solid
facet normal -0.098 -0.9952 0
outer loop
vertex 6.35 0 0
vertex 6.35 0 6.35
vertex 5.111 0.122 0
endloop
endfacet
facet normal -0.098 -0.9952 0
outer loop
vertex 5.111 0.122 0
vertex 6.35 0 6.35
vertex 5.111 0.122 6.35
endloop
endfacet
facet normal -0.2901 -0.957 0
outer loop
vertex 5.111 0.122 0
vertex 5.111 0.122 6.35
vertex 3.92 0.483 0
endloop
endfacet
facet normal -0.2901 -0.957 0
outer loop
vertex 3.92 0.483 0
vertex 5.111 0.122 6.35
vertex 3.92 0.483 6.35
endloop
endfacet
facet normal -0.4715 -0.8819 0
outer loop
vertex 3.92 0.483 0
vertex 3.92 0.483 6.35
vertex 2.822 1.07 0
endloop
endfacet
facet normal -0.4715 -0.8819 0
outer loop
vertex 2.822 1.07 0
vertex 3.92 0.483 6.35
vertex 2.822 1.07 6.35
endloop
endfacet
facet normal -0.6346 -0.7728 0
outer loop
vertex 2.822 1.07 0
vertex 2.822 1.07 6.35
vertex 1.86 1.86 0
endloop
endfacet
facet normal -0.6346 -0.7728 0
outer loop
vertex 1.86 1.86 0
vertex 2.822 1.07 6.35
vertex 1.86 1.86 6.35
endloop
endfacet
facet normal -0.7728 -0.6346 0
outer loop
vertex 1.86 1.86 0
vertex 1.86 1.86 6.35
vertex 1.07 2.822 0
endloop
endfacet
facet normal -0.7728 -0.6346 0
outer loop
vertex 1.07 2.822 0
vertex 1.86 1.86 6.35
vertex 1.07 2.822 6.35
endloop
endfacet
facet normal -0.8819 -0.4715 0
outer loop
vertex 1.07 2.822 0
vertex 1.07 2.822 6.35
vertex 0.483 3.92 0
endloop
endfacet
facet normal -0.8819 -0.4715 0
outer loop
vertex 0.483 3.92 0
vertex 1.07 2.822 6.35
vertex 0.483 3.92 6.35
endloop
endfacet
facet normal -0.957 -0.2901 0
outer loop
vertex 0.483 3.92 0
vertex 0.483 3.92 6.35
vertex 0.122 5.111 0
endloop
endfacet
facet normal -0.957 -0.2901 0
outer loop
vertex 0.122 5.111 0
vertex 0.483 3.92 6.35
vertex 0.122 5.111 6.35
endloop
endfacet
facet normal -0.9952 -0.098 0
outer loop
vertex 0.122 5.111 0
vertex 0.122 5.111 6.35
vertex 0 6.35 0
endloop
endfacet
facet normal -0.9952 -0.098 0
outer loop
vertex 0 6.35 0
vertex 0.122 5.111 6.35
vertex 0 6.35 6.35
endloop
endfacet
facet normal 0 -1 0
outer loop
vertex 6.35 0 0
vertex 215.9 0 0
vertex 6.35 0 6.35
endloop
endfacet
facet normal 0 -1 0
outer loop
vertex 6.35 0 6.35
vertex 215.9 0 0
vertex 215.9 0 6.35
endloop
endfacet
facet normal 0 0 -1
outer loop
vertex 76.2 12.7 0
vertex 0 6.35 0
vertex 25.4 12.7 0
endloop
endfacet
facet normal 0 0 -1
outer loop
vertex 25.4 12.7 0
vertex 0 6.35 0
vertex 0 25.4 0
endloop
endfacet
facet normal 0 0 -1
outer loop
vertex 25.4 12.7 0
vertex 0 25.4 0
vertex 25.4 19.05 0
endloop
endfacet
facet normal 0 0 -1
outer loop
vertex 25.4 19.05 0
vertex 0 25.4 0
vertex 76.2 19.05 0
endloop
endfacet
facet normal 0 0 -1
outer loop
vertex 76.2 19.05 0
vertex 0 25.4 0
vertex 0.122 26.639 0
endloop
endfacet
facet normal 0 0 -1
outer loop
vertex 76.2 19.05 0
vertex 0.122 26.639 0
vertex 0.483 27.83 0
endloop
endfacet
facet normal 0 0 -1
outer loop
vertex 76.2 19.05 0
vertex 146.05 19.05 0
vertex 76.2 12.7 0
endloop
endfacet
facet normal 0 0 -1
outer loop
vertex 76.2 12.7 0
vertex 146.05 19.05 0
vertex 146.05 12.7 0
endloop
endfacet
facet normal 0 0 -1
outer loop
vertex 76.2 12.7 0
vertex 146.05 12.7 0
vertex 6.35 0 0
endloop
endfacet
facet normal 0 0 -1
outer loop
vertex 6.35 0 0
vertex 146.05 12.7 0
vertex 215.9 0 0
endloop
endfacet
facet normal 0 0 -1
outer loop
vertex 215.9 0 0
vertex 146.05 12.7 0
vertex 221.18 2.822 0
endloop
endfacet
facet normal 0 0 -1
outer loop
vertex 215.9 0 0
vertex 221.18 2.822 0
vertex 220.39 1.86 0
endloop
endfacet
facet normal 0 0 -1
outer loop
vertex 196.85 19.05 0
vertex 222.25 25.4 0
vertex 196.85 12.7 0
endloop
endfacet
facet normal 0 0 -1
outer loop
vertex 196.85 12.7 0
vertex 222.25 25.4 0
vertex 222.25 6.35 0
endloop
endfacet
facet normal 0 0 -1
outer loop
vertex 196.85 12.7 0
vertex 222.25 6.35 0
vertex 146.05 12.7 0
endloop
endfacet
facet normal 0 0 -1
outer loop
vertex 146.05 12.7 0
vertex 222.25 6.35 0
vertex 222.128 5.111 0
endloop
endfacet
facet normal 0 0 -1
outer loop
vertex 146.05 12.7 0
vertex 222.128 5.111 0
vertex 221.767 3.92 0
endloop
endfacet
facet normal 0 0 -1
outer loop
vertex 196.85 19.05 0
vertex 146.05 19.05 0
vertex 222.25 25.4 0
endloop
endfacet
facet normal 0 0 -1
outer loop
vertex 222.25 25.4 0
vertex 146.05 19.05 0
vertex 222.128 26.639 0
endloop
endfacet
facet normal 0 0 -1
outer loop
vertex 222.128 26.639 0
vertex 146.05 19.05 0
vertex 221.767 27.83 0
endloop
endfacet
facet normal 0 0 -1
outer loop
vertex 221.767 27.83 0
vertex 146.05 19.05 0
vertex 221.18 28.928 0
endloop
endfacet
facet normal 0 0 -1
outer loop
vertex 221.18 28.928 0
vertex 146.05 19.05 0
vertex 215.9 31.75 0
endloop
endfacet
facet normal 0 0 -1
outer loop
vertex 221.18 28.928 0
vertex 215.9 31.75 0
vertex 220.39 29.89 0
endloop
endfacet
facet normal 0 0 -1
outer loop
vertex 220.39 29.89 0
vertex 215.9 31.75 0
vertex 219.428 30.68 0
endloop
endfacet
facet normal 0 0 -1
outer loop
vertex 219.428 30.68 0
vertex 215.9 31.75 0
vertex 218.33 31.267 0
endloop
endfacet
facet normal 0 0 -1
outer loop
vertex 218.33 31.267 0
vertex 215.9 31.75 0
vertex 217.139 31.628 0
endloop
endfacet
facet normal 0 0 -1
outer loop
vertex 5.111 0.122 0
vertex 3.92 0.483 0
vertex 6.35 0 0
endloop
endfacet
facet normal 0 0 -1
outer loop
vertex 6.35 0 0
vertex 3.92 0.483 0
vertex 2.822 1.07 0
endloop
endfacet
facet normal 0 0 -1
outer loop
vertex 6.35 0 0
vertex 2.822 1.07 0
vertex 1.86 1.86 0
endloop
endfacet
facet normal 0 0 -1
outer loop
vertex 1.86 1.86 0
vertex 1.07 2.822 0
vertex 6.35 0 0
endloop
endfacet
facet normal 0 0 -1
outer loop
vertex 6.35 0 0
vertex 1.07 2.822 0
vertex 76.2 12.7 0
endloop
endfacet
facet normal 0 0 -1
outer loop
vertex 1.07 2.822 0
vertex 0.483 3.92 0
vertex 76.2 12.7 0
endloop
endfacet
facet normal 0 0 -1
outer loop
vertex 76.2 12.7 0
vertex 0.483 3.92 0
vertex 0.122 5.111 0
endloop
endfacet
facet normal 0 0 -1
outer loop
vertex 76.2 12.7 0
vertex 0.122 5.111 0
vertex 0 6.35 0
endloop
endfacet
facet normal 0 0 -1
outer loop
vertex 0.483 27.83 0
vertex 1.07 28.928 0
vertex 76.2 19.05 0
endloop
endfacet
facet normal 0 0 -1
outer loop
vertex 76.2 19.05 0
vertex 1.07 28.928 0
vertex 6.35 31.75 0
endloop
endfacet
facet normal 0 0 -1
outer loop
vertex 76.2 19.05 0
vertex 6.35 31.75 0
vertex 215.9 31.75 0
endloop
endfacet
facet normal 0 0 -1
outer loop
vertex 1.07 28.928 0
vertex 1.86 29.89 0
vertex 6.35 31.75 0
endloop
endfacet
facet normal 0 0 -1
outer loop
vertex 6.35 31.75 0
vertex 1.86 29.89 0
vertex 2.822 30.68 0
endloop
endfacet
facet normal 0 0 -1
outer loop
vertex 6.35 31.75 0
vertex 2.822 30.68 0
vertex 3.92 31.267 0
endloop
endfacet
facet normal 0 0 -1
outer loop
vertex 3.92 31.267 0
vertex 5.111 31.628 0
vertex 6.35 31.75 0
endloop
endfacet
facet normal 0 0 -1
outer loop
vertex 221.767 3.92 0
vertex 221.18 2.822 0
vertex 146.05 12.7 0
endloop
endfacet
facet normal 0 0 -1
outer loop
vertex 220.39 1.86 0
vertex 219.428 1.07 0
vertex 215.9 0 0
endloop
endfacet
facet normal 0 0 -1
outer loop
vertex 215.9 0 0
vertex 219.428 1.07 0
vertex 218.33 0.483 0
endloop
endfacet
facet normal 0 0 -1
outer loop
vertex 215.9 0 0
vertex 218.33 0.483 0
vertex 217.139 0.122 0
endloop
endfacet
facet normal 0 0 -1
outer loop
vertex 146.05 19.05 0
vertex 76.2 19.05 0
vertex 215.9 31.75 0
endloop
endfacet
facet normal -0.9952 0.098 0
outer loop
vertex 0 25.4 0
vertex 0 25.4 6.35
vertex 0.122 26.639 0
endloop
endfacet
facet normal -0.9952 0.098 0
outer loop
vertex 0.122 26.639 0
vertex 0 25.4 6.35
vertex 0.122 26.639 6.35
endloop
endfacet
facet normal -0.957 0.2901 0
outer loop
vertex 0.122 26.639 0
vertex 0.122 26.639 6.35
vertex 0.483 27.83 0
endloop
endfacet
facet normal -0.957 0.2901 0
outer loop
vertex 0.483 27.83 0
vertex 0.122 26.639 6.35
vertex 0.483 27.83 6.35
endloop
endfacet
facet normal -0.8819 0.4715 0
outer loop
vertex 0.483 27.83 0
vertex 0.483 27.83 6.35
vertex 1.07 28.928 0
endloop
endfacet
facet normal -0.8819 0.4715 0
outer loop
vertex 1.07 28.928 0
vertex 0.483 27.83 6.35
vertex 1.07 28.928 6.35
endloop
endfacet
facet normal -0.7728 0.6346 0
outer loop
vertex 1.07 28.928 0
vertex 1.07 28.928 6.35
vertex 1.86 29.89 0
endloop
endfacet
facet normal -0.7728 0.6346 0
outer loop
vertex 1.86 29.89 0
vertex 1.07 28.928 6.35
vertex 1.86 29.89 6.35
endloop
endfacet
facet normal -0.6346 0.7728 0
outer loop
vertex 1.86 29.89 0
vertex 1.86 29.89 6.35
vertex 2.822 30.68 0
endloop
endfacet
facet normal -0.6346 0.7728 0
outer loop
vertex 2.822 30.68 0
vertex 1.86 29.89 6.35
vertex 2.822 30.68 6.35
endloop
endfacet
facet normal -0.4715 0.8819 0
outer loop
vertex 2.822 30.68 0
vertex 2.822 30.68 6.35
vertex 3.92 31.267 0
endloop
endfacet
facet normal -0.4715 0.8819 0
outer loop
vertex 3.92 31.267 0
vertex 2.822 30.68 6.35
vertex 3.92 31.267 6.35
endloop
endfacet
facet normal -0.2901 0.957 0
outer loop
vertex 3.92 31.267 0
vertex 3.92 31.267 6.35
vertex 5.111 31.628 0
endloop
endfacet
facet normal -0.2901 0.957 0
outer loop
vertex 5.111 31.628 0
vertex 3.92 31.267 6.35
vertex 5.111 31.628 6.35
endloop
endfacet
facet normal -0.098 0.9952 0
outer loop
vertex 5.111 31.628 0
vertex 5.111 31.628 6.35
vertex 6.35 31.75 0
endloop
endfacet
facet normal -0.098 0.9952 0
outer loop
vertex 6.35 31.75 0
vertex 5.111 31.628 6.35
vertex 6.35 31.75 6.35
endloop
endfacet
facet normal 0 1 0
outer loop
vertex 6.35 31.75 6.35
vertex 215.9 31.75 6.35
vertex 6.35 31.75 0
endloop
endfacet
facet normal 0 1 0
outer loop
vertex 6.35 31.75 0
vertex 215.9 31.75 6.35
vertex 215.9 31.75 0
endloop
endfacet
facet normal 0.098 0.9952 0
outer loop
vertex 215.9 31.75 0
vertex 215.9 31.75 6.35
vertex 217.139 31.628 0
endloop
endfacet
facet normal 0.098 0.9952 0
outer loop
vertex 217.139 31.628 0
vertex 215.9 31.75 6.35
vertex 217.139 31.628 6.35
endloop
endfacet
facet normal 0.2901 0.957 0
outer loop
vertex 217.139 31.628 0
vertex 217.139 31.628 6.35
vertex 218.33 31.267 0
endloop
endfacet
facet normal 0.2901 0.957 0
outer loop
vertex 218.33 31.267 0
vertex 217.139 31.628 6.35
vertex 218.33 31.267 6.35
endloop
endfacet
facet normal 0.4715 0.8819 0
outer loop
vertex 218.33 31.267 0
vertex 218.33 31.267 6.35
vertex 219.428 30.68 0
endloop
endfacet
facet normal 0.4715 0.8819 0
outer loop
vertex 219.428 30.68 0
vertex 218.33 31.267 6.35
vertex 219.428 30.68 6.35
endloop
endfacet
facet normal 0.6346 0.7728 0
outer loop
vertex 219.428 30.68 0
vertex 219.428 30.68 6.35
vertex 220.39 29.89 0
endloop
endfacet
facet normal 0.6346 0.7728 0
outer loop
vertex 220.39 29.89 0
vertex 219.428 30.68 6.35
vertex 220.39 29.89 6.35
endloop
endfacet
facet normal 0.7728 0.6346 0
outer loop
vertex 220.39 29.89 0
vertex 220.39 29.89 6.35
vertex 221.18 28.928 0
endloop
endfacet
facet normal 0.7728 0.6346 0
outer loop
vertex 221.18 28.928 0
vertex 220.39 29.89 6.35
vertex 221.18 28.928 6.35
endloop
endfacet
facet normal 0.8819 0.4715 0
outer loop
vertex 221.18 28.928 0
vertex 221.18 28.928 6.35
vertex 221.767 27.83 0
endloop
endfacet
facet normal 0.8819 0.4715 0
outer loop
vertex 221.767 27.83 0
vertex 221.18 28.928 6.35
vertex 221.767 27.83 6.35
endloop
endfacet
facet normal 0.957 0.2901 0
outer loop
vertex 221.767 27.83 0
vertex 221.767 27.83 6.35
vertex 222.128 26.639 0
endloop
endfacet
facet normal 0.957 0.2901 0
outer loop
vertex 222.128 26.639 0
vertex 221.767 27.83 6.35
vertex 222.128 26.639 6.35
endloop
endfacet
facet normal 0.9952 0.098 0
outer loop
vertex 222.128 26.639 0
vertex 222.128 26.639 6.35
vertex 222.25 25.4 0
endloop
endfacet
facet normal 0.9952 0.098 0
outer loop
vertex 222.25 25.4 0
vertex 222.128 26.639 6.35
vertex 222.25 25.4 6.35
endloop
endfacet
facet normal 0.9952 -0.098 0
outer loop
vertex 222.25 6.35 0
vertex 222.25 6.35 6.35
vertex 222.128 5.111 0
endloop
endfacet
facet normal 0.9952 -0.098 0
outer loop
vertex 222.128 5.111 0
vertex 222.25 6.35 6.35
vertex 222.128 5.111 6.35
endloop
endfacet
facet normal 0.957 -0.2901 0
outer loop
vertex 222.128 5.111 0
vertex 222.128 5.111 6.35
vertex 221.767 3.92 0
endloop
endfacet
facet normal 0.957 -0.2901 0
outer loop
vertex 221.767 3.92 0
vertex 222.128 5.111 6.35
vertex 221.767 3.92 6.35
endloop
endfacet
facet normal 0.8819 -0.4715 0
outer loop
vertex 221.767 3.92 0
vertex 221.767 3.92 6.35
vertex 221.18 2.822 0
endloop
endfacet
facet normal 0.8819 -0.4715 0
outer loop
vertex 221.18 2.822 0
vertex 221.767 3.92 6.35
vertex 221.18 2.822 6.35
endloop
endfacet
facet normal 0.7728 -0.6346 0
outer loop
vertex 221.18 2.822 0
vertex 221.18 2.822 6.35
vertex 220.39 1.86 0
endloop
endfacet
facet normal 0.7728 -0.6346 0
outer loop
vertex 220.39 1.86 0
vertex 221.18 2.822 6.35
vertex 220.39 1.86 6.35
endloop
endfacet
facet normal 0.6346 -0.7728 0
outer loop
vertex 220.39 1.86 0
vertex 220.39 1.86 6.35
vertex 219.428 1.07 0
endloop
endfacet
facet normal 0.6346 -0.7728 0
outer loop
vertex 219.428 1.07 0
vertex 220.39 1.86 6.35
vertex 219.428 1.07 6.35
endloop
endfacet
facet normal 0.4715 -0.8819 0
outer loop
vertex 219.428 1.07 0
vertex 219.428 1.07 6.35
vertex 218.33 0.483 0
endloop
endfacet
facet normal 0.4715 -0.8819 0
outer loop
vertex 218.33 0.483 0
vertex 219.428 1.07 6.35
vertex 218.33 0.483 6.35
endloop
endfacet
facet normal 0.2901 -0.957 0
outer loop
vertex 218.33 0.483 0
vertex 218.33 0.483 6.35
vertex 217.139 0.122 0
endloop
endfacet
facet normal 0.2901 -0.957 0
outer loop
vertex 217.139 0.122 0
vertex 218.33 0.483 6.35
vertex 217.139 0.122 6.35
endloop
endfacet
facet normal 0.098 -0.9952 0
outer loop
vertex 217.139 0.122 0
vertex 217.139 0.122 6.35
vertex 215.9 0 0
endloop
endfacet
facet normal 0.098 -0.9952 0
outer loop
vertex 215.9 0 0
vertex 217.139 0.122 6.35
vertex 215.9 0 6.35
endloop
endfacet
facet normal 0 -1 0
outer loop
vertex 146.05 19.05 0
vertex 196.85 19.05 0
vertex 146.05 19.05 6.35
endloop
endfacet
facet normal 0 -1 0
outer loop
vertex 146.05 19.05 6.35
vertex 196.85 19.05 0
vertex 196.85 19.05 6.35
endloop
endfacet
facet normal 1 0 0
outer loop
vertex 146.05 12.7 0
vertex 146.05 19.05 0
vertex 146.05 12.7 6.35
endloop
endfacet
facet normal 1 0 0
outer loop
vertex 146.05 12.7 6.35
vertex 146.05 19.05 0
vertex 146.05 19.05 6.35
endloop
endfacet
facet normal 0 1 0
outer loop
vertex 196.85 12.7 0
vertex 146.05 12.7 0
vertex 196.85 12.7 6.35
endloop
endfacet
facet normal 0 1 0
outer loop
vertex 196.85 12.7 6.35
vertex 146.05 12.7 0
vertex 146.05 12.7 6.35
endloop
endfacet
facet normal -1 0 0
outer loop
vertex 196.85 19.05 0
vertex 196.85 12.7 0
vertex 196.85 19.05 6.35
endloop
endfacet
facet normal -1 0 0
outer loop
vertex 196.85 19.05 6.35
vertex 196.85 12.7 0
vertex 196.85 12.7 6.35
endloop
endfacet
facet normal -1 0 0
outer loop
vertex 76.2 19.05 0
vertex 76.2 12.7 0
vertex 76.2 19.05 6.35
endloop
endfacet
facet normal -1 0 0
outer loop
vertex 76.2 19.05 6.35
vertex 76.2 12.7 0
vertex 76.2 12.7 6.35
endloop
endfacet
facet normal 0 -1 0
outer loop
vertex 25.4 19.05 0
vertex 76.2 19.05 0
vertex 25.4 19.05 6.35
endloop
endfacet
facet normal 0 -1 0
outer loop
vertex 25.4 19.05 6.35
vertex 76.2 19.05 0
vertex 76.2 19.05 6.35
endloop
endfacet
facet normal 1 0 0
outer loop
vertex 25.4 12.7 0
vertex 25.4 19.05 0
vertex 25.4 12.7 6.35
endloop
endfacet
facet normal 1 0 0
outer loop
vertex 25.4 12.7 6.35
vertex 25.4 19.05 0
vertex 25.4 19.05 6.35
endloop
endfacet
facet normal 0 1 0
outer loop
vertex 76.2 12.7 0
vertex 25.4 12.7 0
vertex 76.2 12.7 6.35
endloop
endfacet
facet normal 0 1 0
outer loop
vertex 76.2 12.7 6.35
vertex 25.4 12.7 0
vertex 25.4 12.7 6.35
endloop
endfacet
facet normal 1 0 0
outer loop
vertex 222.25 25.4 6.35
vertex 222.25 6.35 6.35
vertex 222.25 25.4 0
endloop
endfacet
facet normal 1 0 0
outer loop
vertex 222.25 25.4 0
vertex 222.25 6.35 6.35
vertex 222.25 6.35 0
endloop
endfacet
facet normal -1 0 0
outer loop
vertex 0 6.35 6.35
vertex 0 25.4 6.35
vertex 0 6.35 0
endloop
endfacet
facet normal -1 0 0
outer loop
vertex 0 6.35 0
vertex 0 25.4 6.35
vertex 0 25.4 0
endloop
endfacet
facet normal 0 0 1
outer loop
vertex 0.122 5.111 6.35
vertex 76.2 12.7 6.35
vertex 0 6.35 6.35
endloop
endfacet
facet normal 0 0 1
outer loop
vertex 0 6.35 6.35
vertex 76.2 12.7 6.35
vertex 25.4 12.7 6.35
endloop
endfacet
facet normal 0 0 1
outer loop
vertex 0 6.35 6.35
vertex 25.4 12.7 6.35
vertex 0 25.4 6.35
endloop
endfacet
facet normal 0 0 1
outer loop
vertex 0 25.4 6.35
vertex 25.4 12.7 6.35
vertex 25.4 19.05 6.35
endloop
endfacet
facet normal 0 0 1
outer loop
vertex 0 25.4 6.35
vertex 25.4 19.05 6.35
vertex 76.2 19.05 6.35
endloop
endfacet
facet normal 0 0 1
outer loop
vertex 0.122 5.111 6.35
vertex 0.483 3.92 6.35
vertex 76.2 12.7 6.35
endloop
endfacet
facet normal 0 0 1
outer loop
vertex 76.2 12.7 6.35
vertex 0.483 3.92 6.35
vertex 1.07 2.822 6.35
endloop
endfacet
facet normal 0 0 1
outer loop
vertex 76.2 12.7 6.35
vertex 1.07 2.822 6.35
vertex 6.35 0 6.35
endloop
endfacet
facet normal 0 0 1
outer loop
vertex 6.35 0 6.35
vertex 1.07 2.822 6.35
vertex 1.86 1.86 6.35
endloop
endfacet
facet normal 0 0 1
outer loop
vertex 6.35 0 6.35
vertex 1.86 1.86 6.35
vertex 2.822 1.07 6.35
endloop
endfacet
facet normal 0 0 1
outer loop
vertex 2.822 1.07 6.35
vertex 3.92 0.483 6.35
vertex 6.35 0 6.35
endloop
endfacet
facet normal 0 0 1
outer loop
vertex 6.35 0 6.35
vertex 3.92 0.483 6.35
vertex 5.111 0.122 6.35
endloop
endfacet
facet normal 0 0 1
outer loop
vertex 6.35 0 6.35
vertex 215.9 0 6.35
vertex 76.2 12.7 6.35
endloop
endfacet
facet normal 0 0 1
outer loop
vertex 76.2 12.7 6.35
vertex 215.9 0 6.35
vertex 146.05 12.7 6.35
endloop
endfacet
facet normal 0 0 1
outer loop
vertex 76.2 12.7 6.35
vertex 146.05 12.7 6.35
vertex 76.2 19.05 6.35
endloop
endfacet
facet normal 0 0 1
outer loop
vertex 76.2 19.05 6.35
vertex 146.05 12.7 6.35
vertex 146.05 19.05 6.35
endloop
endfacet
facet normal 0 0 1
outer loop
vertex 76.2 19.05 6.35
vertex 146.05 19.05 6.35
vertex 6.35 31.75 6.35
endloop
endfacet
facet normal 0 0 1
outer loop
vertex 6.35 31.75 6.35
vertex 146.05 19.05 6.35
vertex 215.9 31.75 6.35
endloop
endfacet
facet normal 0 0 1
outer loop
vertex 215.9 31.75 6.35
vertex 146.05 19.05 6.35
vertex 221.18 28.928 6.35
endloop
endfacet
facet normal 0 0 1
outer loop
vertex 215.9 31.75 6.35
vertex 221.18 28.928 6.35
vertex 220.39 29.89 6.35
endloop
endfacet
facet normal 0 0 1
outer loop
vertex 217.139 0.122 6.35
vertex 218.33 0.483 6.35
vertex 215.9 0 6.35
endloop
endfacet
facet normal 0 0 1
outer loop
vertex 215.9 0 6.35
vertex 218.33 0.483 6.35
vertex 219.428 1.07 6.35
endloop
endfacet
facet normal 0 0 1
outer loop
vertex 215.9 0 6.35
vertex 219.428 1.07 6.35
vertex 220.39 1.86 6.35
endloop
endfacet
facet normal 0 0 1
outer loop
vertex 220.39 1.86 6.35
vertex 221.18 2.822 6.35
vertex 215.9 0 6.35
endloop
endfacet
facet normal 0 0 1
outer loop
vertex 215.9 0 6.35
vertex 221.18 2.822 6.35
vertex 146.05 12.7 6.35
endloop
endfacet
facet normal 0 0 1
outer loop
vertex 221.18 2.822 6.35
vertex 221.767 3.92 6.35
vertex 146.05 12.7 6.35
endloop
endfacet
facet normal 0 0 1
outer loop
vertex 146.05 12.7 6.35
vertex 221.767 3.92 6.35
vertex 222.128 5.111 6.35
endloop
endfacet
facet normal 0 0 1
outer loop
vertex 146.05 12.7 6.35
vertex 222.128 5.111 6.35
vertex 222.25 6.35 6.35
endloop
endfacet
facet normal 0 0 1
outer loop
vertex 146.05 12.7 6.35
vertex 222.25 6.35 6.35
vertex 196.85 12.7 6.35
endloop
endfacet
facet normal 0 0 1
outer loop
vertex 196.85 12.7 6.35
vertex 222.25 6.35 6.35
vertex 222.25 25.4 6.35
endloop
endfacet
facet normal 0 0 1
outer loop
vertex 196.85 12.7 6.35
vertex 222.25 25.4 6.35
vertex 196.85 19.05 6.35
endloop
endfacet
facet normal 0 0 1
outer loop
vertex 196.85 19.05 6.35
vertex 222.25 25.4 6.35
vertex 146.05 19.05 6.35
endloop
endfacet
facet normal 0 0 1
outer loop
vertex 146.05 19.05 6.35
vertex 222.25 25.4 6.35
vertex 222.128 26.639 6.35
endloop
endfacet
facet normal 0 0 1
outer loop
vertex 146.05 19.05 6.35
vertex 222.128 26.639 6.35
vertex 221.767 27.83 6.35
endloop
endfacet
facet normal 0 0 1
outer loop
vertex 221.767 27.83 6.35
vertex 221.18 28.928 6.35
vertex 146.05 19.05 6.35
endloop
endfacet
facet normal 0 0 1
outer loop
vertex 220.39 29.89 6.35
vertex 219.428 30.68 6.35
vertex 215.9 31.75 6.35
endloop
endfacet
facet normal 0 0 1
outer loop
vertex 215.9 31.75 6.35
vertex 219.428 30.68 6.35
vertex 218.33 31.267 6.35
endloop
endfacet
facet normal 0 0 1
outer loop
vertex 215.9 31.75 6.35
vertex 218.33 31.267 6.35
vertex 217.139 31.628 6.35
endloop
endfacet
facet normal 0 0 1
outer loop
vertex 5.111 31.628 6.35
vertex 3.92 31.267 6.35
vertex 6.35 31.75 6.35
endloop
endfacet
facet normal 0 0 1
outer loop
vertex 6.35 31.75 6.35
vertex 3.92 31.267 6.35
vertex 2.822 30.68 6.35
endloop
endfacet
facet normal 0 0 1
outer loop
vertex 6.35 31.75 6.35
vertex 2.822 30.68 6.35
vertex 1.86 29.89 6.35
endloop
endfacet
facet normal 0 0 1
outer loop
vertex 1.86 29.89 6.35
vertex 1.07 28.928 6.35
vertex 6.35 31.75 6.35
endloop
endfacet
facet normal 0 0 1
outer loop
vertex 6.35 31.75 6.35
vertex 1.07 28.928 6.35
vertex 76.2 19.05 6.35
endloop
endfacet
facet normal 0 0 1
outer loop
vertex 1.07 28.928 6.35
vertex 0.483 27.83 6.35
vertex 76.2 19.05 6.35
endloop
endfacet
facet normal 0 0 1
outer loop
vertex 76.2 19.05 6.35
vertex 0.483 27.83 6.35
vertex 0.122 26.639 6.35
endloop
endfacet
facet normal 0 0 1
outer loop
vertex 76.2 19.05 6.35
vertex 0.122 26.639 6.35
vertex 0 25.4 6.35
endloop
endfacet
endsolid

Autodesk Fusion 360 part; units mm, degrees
sketch "Base" plane through (0, 0, 0) normal (0, 0, 1) x (1, 0, 0)
  line L0 (0, 0) -> (0, 31.75)
  line L1 (222.25, 0) -> (0, 0)
  line L2 (222.25, 31.75) -> (222.25, 0)
  line L3 (0, 31.75) -> (222.25, 31.75)
  line L4 (76.2, 12.7001) -> (25.4, 12.7001)
  line L5 (25.4, 19.05) -> (76.2, 19.05)
  line L6 (76.2, 19.05) -> (76.2, 12.7001)
  line L7 (25.4, 12.7001) -> (25.4, 19.05)
  line L8 (196.85, 19.05) -> (196.85, 12.7001)
  line L9 (146.05, 19.05) -> (196.85, 19.05)
  line L10 (146.05, 12.7001) -> (146.05, 19.05)
  line L11 (196.85, 12.7001) -> (146.05, 12.7001)
extrude "Extrude1" add sketch "Base" along normal blind 6.35
fillet "Fillet1" radius 6.35 1 edges at (222.25, 0, 3.175)
fillet "Fillet2" radius 6.35 1 edges at (222.25, 31.75, 3.175)
fillet "Fillet3" radius 6.35 1 edges at (0, 31.75, 3.175)
fillet "Fillet4" radius 6.35 1 edges at (0, 0, 3.175)
